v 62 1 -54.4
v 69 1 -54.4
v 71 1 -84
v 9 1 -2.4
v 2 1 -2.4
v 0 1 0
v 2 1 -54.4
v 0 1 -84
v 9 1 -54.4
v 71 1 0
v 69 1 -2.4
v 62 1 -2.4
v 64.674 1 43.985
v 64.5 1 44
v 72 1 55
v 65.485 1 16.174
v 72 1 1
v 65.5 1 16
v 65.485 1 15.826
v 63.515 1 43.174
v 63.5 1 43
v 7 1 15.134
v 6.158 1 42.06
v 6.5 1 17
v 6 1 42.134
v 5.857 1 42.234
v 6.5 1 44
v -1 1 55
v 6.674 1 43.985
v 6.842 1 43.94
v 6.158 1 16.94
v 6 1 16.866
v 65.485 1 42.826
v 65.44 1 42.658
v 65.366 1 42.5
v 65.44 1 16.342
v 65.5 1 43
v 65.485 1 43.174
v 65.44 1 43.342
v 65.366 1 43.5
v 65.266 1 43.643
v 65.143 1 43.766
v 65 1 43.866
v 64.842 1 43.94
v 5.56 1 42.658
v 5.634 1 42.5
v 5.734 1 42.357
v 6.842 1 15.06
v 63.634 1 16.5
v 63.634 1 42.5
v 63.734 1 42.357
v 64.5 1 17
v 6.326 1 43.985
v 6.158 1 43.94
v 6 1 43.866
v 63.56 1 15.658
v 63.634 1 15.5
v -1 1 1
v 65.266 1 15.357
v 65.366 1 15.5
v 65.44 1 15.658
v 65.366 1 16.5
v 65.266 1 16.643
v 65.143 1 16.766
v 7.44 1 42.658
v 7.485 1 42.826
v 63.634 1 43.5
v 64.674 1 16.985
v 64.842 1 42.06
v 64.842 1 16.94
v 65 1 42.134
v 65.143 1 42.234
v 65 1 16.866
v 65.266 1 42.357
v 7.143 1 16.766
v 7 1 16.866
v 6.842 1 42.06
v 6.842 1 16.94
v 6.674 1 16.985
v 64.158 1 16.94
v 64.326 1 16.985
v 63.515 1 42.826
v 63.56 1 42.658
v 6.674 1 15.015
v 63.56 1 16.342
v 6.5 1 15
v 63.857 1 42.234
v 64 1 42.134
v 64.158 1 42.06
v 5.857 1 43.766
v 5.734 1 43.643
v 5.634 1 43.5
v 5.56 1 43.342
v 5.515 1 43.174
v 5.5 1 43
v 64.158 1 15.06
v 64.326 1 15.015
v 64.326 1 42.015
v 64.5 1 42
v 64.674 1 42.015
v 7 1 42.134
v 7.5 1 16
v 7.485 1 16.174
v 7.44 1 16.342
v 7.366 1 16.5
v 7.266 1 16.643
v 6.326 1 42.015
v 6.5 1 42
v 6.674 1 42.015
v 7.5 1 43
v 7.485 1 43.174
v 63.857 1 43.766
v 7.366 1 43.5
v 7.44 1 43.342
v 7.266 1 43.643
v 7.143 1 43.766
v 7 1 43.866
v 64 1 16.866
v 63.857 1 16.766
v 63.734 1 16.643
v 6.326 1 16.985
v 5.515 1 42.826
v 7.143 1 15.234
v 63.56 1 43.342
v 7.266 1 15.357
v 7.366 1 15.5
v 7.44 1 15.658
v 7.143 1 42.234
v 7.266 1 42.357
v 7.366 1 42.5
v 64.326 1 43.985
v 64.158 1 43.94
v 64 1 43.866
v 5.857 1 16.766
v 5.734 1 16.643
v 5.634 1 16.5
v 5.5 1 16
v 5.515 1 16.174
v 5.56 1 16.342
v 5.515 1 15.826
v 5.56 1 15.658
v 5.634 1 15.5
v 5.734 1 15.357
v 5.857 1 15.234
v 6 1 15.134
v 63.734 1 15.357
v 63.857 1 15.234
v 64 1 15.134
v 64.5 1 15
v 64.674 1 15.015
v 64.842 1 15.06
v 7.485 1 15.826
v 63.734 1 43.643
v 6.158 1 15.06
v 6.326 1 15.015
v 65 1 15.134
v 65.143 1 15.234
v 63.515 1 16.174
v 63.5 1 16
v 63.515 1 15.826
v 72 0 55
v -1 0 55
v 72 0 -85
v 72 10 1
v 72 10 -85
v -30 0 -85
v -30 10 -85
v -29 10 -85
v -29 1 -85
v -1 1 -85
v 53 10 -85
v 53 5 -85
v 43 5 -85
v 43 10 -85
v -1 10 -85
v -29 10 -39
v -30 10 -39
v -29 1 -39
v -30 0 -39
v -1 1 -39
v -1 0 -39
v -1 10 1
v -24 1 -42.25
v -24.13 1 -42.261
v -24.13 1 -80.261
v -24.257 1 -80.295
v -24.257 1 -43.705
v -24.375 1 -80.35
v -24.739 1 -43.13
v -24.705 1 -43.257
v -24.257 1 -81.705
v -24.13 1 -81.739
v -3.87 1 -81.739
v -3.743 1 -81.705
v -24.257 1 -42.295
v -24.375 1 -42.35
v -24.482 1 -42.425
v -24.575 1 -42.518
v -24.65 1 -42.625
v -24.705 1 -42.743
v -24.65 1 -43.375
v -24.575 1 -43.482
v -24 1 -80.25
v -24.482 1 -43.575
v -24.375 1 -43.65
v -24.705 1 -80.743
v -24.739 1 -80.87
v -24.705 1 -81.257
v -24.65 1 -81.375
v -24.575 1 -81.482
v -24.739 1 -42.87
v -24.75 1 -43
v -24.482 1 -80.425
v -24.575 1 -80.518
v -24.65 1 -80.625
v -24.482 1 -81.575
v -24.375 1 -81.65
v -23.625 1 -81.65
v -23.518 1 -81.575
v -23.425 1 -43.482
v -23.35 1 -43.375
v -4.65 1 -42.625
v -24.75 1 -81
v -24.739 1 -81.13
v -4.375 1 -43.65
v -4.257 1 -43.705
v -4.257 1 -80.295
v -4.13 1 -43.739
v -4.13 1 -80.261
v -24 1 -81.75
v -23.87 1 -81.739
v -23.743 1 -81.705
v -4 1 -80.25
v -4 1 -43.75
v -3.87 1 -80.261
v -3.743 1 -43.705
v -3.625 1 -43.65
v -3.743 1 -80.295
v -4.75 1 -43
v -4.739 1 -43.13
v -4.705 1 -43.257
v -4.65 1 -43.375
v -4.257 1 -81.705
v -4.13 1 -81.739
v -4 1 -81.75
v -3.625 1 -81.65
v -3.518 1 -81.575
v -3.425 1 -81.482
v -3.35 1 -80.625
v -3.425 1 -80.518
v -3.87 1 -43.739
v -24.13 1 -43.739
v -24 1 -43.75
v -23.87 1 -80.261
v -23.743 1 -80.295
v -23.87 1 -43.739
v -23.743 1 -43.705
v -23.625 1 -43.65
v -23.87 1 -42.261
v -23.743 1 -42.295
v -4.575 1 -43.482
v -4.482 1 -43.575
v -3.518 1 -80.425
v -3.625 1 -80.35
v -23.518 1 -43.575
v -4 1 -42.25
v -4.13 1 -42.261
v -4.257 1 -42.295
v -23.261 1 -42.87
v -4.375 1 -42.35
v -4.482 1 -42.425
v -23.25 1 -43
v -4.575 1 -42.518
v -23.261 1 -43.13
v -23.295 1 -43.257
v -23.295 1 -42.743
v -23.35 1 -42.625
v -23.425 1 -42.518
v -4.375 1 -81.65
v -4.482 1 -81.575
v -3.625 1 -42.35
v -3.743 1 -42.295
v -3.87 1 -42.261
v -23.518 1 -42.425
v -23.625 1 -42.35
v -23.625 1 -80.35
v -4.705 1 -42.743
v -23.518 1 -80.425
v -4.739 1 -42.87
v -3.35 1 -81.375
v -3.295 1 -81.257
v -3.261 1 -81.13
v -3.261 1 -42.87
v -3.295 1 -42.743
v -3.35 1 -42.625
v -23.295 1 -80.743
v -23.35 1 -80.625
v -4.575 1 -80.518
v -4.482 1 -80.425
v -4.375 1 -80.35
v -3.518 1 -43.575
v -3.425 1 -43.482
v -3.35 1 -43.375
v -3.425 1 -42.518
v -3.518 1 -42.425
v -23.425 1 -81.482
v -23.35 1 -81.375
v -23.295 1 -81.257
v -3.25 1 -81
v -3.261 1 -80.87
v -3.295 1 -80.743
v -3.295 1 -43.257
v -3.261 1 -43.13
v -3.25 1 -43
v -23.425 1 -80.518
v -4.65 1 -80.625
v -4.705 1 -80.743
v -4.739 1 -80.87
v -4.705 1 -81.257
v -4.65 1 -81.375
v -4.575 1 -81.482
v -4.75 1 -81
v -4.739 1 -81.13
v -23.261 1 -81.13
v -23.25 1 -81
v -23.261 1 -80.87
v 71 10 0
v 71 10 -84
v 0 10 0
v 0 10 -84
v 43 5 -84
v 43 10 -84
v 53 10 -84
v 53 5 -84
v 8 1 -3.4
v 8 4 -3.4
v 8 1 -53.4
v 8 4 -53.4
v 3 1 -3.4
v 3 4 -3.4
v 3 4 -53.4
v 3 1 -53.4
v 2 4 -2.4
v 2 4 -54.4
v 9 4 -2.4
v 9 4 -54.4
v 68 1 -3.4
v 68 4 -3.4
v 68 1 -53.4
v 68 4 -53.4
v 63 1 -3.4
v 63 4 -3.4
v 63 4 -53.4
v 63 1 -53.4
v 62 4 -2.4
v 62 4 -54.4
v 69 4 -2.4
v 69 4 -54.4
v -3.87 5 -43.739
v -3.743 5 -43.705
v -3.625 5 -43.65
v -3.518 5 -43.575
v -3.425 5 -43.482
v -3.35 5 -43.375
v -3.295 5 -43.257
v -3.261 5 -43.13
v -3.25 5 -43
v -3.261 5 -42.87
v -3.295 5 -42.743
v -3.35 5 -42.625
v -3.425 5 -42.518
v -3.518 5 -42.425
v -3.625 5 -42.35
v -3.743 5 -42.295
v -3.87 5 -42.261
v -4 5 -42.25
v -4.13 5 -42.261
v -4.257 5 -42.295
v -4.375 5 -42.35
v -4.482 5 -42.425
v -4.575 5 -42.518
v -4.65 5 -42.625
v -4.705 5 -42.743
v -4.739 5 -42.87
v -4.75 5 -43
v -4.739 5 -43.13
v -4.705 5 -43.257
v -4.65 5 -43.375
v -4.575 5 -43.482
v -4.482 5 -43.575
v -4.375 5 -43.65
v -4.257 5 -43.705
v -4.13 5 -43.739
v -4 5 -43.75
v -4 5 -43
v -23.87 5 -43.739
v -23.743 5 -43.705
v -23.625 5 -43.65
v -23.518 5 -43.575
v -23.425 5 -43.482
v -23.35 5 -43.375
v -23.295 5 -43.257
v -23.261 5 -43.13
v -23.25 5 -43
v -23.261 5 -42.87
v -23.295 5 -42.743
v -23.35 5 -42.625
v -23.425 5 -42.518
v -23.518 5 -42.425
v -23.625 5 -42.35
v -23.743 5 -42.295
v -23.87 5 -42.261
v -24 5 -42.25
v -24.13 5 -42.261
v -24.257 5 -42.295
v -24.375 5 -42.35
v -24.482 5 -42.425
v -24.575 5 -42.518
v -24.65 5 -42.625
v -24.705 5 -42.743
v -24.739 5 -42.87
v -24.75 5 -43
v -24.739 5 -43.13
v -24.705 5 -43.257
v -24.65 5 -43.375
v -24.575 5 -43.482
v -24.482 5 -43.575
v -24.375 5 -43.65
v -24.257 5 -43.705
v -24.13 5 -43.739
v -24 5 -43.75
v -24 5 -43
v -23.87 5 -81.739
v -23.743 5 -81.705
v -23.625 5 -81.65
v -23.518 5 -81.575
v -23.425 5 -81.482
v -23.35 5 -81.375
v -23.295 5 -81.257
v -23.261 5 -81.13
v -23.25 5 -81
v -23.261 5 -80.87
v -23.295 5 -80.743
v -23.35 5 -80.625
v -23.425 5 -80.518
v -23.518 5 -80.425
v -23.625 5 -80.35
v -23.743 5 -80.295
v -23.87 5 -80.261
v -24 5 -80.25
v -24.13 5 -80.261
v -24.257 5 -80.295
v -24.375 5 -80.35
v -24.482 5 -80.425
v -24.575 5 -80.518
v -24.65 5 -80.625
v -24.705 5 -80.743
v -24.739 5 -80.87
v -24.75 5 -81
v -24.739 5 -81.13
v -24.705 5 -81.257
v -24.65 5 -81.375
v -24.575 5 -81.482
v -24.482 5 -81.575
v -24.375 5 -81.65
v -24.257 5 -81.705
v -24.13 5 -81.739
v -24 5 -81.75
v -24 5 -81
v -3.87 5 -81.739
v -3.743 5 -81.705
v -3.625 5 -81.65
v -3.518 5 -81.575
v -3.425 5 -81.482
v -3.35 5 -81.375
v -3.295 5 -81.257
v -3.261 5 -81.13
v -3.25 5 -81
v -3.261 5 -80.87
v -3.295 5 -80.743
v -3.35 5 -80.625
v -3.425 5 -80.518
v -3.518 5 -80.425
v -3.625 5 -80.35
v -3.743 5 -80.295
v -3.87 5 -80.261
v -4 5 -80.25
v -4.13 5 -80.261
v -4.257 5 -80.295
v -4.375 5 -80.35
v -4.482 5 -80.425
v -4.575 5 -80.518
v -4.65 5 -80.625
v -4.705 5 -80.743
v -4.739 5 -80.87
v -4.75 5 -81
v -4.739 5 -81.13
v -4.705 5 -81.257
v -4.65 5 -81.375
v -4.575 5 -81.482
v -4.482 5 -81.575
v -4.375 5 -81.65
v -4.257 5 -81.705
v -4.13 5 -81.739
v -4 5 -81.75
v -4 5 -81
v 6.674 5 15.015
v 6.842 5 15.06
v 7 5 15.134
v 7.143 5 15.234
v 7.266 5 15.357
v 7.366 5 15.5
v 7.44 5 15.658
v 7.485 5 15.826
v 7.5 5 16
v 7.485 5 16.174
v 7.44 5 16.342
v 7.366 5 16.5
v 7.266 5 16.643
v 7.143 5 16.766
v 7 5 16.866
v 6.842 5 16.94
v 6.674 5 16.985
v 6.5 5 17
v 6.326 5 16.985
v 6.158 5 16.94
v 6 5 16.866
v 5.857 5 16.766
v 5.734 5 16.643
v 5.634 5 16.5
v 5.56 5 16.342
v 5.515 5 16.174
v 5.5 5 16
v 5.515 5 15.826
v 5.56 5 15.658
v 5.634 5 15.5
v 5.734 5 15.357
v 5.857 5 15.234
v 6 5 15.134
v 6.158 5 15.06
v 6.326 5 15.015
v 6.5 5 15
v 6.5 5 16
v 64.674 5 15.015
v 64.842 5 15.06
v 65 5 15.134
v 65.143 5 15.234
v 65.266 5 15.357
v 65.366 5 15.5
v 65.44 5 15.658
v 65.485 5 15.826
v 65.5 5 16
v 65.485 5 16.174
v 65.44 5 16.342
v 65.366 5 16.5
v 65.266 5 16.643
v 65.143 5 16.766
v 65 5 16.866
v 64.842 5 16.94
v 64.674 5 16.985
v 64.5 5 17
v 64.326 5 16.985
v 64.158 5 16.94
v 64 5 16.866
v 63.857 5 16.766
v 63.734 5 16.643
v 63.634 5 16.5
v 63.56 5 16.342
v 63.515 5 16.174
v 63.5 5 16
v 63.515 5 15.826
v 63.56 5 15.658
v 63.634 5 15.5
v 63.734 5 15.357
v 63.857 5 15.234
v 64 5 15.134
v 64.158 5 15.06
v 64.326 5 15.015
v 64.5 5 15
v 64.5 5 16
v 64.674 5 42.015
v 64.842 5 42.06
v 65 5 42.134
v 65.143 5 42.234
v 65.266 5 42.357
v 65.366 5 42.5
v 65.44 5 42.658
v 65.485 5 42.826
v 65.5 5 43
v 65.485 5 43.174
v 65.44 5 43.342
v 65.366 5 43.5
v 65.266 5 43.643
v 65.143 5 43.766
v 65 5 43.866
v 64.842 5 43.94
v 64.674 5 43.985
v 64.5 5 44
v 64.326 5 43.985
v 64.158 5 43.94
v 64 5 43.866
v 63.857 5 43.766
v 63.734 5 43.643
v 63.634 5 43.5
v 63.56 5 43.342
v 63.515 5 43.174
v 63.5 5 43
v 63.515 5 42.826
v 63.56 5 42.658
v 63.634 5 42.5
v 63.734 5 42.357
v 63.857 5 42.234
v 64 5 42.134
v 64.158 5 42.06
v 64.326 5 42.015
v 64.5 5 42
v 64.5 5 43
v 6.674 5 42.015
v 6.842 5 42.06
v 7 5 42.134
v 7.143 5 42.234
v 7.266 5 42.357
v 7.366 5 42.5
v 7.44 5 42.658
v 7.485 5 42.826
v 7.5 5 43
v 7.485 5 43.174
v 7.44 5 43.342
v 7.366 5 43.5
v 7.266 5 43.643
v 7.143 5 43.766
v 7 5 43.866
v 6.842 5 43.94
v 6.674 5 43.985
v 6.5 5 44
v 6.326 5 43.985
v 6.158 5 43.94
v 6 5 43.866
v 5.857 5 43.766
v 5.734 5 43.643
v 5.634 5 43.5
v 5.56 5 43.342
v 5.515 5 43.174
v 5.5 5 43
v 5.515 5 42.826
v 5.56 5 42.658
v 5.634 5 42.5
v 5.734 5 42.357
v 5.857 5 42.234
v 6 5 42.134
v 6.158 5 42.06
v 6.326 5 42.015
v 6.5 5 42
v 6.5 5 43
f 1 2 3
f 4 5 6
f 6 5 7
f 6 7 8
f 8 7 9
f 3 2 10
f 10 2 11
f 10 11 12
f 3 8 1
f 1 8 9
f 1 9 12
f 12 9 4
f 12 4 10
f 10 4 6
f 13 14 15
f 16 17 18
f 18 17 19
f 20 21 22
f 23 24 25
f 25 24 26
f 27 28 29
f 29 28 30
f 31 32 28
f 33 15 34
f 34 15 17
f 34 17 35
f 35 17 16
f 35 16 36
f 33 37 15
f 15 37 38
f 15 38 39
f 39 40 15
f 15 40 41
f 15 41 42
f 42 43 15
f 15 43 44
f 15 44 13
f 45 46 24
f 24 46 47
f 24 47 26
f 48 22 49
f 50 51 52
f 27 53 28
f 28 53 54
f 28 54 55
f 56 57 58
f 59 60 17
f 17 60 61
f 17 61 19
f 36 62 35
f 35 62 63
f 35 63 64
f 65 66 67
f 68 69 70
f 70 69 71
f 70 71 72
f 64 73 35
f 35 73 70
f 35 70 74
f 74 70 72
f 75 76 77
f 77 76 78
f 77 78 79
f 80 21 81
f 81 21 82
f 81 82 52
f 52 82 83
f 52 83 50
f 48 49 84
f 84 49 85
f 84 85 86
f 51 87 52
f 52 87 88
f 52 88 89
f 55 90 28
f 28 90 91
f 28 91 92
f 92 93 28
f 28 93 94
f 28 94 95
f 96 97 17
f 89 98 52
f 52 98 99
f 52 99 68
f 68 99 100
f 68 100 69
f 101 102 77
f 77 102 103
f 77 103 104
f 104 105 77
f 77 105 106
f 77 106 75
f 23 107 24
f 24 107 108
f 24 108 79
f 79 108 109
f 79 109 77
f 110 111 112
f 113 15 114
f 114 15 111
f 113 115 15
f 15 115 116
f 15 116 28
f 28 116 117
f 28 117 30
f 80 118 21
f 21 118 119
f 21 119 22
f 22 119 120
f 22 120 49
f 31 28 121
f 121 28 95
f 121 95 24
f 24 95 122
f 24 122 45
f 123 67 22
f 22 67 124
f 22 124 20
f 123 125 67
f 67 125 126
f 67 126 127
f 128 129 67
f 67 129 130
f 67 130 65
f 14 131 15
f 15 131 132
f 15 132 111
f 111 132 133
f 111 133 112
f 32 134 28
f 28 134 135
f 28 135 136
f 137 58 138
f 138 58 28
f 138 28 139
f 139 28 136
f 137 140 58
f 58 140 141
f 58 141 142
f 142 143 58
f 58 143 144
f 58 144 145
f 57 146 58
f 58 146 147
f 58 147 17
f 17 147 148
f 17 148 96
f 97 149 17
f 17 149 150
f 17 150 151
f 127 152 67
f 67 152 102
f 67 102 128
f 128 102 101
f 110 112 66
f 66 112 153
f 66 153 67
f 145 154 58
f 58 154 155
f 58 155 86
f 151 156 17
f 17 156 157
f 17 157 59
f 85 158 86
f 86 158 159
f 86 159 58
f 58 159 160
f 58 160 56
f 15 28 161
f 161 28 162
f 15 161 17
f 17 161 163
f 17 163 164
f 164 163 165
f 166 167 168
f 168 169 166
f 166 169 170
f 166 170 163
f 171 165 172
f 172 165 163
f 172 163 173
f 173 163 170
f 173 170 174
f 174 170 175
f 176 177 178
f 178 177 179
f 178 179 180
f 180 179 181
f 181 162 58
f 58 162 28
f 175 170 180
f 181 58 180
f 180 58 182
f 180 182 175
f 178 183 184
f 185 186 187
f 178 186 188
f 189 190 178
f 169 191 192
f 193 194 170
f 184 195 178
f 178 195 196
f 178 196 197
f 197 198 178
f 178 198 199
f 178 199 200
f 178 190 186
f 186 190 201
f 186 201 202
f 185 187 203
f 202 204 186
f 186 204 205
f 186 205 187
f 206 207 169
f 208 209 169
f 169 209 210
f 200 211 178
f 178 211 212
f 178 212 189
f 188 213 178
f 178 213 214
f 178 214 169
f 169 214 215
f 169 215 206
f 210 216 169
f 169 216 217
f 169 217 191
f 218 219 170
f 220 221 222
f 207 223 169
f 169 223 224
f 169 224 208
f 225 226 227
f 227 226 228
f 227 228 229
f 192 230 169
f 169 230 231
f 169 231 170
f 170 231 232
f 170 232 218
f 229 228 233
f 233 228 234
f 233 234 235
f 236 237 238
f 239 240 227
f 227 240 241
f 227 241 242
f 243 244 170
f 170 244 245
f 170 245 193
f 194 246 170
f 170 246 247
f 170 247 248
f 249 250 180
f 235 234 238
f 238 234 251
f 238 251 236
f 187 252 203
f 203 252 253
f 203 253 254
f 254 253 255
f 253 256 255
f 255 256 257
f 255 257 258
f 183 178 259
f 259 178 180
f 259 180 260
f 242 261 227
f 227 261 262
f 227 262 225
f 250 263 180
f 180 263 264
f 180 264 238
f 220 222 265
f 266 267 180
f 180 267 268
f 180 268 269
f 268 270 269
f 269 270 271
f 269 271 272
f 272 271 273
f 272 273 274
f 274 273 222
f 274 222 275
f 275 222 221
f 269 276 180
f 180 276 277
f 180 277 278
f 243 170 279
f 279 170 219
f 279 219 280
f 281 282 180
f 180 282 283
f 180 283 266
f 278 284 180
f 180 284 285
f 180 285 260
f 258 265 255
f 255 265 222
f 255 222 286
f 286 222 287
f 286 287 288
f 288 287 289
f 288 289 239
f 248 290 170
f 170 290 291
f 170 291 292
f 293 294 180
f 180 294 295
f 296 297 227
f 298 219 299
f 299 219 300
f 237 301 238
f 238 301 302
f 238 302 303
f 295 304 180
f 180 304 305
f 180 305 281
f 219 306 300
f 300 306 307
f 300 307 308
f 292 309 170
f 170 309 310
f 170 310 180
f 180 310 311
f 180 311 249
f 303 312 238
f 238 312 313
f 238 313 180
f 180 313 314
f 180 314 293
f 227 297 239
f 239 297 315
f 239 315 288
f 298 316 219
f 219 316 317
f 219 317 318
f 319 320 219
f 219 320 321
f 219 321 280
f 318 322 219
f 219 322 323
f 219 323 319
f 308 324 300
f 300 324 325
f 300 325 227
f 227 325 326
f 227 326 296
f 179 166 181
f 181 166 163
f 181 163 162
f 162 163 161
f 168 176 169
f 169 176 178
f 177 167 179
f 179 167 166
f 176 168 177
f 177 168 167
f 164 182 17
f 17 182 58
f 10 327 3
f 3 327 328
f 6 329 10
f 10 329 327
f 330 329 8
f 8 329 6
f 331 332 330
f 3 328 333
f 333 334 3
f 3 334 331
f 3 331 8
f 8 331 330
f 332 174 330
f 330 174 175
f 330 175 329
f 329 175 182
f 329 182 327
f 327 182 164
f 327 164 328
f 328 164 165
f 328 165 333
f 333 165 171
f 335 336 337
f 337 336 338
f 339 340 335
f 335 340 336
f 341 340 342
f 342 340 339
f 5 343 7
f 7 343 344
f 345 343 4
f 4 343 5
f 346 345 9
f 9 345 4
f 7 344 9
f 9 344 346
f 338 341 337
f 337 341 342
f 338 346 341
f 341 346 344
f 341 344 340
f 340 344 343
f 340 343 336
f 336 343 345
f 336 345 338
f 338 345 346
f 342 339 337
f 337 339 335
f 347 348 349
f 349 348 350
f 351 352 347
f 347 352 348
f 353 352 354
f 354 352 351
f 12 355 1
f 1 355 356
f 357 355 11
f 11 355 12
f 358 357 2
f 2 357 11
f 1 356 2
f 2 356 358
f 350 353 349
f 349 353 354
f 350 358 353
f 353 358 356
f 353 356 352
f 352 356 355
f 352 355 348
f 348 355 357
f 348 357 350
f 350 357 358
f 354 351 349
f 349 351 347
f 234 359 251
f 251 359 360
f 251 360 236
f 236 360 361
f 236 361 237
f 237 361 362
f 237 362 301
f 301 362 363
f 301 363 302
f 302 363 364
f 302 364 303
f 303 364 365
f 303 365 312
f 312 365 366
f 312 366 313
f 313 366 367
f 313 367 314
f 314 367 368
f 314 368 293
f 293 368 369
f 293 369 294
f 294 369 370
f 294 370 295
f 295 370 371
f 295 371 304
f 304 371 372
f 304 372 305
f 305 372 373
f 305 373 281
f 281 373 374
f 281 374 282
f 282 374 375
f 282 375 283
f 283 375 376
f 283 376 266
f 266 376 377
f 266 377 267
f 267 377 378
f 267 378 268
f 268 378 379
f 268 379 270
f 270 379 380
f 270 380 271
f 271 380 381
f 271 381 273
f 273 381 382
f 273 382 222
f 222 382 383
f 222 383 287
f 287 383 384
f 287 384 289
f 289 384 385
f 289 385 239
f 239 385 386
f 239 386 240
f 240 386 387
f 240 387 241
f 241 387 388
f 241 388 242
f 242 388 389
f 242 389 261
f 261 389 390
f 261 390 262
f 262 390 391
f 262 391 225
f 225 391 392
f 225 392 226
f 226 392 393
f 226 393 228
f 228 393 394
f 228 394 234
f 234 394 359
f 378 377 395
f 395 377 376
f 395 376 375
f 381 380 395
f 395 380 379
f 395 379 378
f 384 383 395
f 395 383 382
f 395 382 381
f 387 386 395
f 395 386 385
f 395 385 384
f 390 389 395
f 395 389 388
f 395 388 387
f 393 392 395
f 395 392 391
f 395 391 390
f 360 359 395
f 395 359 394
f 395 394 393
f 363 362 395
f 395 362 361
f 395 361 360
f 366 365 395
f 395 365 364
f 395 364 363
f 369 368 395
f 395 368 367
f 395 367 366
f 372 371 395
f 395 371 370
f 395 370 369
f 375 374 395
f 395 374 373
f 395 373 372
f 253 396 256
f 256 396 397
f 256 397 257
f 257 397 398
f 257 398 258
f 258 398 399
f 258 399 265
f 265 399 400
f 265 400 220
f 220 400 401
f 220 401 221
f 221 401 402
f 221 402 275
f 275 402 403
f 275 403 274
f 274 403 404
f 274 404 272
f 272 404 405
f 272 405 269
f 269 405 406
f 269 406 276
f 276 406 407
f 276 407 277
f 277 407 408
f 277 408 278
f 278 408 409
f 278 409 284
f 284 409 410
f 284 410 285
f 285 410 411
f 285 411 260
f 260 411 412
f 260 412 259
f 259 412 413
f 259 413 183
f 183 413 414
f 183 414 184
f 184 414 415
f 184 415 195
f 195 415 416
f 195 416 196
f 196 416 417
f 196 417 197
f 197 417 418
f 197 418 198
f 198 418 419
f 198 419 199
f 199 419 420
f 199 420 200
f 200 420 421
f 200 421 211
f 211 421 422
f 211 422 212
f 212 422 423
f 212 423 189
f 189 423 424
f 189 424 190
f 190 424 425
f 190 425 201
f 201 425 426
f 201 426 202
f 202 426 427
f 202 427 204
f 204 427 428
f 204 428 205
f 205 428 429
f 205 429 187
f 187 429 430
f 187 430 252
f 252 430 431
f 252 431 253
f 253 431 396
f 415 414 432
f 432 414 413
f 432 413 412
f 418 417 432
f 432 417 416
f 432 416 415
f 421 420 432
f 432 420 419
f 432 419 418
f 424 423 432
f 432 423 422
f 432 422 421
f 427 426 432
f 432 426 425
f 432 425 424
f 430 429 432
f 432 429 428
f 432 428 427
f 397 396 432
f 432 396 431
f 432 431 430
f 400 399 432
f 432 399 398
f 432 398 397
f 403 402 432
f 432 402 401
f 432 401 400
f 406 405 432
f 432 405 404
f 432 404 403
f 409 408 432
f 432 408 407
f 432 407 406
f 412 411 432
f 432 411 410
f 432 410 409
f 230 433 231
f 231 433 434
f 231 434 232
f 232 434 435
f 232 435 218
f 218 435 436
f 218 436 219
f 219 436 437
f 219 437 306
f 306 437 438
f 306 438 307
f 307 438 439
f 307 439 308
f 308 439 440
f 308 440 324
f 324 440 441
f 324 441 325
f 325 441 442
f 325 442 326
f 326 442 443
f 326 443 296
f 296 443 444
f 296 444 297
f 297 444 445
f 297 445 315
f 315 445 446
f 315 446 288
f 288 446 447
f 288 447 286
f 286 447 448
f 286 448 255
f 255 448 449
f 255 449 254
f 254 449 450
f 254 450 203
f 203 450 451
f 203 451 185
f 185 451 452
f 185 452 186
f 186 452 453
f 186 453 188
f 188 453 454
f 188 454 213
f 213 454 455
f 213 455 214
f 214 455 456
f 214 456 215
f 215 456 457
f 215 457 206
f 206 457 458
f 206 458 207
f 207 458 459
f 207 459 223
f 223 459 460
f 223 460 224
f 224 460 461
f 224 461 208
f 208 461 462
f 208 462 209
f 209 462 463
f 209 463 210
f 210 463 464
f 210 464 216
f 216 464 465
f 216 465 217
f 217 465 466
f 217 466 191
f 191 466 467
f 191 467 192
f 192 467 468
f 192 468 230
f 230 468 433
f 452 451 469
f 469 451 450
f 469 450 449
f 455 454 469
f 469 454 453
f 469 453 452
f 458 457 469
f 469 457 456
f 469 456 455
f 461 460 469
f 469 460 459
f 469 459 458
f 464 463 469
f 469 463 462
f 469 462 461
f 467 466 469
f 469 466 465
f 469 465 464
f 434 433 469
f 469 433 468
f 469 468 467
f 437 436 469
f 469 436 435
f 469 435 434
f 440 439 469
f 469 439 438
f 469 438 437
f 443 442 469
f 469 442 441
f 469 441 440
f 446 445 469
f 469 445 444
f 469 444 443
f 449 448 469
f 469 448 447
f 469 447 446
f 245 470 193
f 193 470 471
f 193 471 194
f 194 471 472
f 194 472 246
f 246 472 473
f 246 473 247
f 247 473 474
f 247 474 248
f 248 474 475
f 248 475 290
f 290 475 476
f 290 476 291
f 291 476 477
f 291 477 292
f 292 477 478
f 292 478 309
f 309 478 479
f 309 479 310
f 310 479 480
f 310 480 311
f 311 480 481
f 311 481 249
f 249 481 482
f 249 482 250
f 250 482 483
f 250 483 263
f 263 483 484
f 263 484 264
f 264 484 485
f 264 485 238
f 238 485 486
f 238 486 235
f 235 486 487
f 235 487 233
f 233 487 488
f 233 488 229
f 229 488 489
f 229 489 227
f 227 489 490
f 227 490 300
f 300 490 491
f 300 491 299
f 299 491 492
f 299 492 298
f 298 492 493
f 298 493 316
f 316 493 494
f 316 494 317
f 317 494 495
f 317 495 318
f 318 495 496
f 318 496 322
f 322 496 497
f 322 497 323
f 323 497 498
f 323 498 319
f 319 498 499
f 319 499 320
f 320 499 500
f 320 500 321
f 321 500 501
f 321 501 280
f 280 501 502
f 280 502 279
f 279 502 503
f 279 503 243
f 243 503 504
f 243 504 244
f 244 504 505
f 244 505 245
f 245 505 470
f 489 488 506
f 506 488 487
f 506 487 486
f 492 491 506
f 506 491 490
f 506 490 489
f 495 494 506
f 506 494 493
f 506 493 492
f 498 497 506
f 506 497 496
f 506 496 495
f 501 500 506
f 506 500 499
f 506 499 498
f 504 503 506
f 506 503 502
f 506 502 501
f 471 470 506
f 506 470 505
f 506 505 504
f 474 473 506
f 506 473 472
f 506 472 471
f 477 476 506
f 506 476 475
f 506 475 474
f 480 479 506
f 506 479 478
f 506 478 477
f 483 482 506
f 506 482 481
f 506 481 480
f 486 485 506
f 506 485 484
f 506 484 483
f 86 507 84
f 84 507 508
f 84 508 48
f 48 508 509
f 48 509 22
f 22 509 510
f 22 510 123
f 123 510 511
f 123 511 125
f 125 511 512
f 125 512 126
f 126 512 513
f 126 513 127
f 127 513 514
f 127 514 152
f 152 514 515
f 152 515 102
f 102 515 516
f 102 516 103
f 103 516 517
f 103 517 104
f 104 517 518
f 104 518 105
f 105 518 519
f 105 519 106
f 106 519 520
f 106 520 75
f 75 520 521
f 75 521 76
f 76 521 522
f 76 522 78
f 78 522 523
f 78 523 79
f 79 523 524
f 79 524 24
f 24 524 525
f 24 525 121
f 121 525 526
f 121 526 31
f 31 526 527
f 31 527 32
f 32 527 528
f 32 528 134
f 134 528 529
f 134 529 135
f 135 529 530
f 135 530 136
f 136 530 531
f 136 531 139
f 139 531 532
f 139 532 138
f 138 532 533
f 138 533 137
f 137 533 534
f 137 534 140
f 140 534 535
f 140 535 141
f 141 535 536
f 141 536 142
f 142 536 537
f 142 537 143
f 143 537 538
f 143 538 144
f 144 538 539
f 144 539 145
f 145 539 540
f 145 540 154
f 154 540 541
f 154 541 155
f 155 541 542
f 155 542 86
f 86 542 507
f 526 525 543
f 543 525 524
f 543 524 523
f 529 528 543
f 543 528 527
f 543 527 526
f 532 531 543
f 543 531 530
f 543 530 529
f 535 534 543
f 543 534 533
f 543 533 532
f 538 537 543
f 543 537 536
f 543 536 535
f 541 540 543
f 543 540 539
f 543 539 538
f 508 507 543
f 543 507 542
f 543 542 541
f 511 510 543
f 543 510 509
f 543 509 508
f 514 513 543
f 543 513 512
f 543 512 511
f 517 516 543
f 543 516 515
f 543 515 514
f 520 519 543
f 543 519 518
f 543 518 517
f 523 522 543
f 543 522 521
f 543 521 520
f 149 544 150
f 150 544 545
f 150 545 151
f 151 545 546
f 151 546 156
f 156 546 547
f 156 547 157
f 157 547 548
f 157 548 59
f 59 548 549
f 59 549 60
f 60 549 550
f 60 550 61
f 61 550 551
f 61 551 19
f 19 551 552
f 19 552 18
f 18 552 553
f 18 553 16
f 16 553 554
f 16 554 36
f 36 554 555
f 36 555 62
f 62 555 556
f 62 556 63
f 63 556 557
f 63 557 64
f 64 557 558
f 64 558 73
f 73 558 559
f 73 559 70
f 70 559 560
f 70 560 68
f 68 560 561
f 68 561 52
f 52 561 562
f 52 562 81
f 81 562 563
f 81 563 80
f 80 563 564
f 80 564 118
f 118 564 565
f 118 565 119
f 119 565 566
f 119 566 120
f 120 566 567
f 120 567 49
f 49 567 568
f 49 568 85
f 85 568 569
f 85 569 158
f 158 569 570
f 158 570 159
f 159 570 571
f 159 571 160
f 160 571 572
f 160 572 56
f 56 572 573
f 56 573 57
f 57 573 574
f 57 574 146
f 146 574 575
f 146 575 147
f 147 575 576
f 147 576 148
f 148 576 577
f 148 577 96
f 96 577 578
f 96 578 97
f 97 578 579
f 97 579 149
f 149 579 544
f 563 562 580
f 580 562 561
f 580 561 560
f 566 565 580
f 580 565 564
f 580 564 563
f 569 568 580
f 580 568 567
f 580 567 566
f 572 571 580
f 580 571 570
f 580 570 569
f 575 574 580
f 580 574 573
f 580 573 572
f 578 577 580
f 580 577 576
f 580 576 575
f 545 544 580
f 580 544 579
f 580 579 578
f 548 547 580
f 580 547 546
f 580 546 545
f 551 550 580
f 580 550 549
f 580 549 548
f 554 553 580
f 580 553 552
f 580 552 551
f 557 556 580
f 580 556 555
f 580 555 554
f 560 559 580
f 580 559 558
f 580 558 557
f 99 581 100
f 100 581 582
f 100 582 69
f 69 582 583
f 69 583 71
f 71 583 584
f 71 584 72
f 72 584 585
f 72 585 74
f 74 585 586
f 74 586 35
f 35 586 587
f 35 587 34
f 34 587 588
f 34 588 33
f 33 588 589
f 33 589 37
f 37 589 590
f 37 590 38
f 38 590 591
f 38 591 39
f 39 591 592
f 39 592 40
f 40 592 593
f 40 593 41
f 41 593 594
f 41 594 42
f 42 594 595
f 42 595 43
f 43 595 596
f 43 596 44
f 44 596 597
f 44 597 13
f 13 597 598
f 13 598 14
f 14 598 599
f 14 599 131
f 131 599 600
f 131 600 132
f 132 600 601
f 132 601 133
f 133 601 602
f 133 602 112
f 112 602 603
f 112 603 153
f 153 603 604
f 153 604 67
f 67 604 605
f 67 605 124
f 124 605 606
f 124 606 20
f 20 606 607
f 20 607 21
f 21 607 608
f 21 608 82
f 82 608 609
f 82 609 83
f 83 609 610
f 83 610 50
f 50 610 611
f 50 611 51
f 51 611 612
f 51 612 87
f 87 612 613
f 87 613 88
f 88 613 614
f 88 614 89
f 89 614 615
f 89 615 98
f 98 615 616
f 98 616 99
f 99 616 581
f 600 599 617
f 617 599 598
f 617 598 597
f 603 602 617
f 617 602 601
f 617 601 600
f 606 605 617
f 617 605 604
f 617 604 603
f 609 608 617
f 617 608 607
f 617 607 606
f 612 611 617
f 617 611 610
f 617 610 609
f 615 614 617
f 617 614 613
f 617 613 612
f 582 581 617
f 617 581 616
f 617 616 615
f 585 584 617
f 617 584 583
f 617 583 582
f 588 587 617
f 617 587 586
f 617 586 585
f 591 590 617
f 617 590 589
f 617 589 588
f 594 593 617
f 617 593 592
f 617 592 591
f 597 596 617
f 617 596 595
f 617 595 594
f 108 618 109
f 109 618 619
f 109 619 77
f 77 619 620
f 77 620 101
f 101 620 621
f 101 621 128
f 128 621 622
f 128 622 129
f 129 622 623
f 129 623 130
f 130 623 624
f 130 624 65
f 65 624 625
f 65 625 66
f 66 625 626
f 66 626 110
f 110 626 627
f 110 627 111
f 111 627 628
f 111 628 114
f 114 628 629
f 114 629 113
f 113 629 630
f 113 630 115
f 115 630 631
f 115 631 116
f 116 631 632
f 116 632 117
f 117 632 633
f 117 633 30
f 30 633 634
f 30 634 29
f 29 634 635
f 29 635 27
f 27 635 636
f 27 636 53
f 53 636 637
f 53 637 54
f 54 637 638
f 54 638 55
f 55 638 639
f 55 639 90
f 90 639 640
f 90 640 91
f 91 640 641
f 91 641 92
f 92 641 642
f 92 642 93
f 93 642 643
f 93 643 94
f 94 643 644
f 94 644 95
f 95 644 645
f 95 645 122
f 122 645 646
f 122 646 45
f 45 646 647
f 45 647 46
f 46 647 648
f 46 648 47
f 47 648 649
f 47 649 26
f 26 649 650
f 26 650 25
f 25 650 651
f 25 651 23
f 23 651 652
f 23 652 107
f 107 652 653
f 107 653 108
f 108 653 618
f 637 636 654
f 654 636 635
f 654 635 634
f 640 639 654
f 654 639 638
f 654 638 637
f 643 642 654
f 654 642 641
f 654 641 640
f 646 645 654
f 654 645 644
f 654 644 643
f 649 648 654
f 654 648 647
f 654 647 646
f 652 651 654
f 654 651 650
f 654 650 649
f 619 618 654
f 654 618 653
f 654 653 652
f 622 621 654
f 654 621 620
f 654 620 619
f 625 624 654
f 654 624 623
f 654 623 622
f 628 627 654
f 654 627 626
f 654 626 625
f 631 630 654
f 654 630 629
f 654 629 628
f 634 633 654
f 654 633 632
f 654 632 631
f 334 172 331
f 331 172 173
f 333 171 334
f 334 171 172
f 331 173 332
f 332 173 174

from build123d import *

# Parameters (mm, degrees)
SKETCH_1_R          = 1
SKETCH_1_R_2        = 0.75
EXTRUDE_1_DEPTH     = 1
SKETCH_1_3_W        = 73
SKETCH_1_3_H        = 86
SKETCH_1_3_W_2      = 71
SKETCH_1_3_H_2      = 84
SKETCH_1_3_W_3      = 1
SKETCH_1_3_H_3      = 46
EXTRUDE_2_DEPTH     = 10
SKETCH_1_4_W        = 7
SKETCH_1_4_H        = 52
SKETCH_1_4_W_2      = 5
SKETCH_1_4_H_2      = 50
EXTRUDE_3_DEPTH     = 4
SKETCH_1_5_R        = 1
SKETCH_1_5_R_2      = 0.75
EXTRUDE_4_DEPTH     = 5
SKETCH_2_W          = 10
SKETCH_2_H          = 5
CUT_EXTRUDE_2_DEPTH = 10


with BuildPart() as part:
    # Эскиз1 → Бобышка-Вытянуть1 (new body)
    with BuildSketch(Plane(origin=(0, 0, 0), x_dir=(1, 0, 0), z_dir=(0, 1, 0))):
        Polygon((-29, 85), (-29, 39), (-1, 39), (-1, -55), (72, -55), (72, 85), align=None)
        with Locations((64.5, -16)):
            Circle(SKETCH_1_R, mode=Mode.SUBTRACT)
        with Locations((64.5, -43)):
            Circle(SKETCH_1_R, mode=Mode.SUBTRACT)
        with Locations((6.5, -43)):
            Circle(SKETCH_1_R, mode=Mode.SUBTRACT)
        with Locations((6.5, -16)):
            Circle(SKETCH_1_R, mode=Mode.SUBTRACT)
        with Locations((-4, 81)):
            Circle(SKETCH_1_R_2, mode=Mode.SUBTRACT)
        with Locations((-24, 43)):
            Circle(SKETCH_1_R_2, mode=Mode.SUBTRACT)
        with Locations((-4, 43)):
            Circle(SKETCH_1_R_2, mode=Mode.SUBTRACT)
        with Locations((-24, 81)):
            Circle(SKETCH_1_R_2, mode=Mode.SUBTRACT)
    extrude(amount=EXTRUDE_1_DEPTH)

    # Эскиз1<3> → Бобышка-Вытянуть2 (add)
    # profile 1 of 2: a face of its own
    with BuildSketch(Plane(origin=(0, 0, 0), x_dir=(1, 0, 0), z_dir=(0, 1, 0))):
        with Locations((35.5, 42)):
            Rectangle(SKETCH_1_3_W, SKETCH_1_3_H)
        with Locations((35.5, 42)):
            Rectangle(SKETCH_1_3_W_2, SKETCH_1_3_H_2, mode=Mode.SUBTRACT)
    # profile 2 of 2: a face of its own
    with BuildSketch(Plane(origin=(0, 0, 0), x_dir=(1, 0, 0), z_dir=(0, 1, 0))):
        with Locations((-29.5, 62)):
            Rectangle(SKETCH_1_3_W_3, SKETCH_1_3_H_3)
    extrude(amount=EXTRUDE_2_DEPTH)

    # Эскиз1<4> → Бобышка-Вытянуть3 (add)
    # profile 1 of 2: a face of its own
    with BuildSketch(Plane(origin=(0, 0, 0), x_dir=(1, 0, 0), z_dir=(0, 1, 0))):
        with Locations((5.5, 28.4)):
            Rectangle(SKETCH_1_4_W, SKETCH_1_4_H)
        with Locations((5.5, 28.4)):
            Rectangle(SKETCH_1_4_W_2, SKETCH_1_4_H_2, mode=Mode.SUBTRACT)
    # profile 2 of 2: a face of its own
    with BuildSketch(Plane(origin=(0, 0, 0), x_dir=(1, 0, 0), z_dir=(0, 1, 0))):
        with Locations((65.5, 28.4)):
            Rectangle(SKETCH_1_4_W, SKETCH_1_4_H)
        with Locations((65.5, 28.4)):
            Rectangle(SKETCH_1_4_W_2, SKETCH_1_4_H_2, mode=Mode.SUBTRACT)
    extrude(amount=EXTRUDE_3_DEPTH)

    # Эскиз1<5> → Бобышка-Вытянуть4 (add)
    with BuildSketch(Plane(origin=(0, 0, 0), x_dir=(1, 0, 0), z_dir=(0, 1, 0))):
        with Locations((6.5, -16)):
            Circle(SKETCH_1_5_R)
        with Locations((64.5, -16)):
            Circle(SKETCH_1_5_R)
        with Locations((64.5, -43)):
            Circle(SKETCH_1_5_R)
        with Locations((6.5, -43)):
            Circle(SKETCH_1_5_R)
        with Locations((-24, 81)):
            Circle(SKETCH_1_5_R_2)
        with Locations((-4, 81)):
            Circle(SKETCH_1_5_R_2)
        with Locations((-24, 43)):
            Circle(SKETCH_1_5_R_2)
        with Locations((-4, 43)):
            Circle(SKETCH_1_5_R_2)
    extrude(amount=EXTRUDE_4_DEPTH)

    # Эскиз2 → Вырез-Вытянуть2 (cut)
    with BuildSketch(Plane.XY.offset(-84)):
        with Locations((48, 7.5)):
            Rectangle(SKETCH_2_W, SKETCH_2_H)
    extrude(amount=-CUT_EXTRUDE_2_DEPTH, mode=Mode.SUBTRACT)


solid = part.part
